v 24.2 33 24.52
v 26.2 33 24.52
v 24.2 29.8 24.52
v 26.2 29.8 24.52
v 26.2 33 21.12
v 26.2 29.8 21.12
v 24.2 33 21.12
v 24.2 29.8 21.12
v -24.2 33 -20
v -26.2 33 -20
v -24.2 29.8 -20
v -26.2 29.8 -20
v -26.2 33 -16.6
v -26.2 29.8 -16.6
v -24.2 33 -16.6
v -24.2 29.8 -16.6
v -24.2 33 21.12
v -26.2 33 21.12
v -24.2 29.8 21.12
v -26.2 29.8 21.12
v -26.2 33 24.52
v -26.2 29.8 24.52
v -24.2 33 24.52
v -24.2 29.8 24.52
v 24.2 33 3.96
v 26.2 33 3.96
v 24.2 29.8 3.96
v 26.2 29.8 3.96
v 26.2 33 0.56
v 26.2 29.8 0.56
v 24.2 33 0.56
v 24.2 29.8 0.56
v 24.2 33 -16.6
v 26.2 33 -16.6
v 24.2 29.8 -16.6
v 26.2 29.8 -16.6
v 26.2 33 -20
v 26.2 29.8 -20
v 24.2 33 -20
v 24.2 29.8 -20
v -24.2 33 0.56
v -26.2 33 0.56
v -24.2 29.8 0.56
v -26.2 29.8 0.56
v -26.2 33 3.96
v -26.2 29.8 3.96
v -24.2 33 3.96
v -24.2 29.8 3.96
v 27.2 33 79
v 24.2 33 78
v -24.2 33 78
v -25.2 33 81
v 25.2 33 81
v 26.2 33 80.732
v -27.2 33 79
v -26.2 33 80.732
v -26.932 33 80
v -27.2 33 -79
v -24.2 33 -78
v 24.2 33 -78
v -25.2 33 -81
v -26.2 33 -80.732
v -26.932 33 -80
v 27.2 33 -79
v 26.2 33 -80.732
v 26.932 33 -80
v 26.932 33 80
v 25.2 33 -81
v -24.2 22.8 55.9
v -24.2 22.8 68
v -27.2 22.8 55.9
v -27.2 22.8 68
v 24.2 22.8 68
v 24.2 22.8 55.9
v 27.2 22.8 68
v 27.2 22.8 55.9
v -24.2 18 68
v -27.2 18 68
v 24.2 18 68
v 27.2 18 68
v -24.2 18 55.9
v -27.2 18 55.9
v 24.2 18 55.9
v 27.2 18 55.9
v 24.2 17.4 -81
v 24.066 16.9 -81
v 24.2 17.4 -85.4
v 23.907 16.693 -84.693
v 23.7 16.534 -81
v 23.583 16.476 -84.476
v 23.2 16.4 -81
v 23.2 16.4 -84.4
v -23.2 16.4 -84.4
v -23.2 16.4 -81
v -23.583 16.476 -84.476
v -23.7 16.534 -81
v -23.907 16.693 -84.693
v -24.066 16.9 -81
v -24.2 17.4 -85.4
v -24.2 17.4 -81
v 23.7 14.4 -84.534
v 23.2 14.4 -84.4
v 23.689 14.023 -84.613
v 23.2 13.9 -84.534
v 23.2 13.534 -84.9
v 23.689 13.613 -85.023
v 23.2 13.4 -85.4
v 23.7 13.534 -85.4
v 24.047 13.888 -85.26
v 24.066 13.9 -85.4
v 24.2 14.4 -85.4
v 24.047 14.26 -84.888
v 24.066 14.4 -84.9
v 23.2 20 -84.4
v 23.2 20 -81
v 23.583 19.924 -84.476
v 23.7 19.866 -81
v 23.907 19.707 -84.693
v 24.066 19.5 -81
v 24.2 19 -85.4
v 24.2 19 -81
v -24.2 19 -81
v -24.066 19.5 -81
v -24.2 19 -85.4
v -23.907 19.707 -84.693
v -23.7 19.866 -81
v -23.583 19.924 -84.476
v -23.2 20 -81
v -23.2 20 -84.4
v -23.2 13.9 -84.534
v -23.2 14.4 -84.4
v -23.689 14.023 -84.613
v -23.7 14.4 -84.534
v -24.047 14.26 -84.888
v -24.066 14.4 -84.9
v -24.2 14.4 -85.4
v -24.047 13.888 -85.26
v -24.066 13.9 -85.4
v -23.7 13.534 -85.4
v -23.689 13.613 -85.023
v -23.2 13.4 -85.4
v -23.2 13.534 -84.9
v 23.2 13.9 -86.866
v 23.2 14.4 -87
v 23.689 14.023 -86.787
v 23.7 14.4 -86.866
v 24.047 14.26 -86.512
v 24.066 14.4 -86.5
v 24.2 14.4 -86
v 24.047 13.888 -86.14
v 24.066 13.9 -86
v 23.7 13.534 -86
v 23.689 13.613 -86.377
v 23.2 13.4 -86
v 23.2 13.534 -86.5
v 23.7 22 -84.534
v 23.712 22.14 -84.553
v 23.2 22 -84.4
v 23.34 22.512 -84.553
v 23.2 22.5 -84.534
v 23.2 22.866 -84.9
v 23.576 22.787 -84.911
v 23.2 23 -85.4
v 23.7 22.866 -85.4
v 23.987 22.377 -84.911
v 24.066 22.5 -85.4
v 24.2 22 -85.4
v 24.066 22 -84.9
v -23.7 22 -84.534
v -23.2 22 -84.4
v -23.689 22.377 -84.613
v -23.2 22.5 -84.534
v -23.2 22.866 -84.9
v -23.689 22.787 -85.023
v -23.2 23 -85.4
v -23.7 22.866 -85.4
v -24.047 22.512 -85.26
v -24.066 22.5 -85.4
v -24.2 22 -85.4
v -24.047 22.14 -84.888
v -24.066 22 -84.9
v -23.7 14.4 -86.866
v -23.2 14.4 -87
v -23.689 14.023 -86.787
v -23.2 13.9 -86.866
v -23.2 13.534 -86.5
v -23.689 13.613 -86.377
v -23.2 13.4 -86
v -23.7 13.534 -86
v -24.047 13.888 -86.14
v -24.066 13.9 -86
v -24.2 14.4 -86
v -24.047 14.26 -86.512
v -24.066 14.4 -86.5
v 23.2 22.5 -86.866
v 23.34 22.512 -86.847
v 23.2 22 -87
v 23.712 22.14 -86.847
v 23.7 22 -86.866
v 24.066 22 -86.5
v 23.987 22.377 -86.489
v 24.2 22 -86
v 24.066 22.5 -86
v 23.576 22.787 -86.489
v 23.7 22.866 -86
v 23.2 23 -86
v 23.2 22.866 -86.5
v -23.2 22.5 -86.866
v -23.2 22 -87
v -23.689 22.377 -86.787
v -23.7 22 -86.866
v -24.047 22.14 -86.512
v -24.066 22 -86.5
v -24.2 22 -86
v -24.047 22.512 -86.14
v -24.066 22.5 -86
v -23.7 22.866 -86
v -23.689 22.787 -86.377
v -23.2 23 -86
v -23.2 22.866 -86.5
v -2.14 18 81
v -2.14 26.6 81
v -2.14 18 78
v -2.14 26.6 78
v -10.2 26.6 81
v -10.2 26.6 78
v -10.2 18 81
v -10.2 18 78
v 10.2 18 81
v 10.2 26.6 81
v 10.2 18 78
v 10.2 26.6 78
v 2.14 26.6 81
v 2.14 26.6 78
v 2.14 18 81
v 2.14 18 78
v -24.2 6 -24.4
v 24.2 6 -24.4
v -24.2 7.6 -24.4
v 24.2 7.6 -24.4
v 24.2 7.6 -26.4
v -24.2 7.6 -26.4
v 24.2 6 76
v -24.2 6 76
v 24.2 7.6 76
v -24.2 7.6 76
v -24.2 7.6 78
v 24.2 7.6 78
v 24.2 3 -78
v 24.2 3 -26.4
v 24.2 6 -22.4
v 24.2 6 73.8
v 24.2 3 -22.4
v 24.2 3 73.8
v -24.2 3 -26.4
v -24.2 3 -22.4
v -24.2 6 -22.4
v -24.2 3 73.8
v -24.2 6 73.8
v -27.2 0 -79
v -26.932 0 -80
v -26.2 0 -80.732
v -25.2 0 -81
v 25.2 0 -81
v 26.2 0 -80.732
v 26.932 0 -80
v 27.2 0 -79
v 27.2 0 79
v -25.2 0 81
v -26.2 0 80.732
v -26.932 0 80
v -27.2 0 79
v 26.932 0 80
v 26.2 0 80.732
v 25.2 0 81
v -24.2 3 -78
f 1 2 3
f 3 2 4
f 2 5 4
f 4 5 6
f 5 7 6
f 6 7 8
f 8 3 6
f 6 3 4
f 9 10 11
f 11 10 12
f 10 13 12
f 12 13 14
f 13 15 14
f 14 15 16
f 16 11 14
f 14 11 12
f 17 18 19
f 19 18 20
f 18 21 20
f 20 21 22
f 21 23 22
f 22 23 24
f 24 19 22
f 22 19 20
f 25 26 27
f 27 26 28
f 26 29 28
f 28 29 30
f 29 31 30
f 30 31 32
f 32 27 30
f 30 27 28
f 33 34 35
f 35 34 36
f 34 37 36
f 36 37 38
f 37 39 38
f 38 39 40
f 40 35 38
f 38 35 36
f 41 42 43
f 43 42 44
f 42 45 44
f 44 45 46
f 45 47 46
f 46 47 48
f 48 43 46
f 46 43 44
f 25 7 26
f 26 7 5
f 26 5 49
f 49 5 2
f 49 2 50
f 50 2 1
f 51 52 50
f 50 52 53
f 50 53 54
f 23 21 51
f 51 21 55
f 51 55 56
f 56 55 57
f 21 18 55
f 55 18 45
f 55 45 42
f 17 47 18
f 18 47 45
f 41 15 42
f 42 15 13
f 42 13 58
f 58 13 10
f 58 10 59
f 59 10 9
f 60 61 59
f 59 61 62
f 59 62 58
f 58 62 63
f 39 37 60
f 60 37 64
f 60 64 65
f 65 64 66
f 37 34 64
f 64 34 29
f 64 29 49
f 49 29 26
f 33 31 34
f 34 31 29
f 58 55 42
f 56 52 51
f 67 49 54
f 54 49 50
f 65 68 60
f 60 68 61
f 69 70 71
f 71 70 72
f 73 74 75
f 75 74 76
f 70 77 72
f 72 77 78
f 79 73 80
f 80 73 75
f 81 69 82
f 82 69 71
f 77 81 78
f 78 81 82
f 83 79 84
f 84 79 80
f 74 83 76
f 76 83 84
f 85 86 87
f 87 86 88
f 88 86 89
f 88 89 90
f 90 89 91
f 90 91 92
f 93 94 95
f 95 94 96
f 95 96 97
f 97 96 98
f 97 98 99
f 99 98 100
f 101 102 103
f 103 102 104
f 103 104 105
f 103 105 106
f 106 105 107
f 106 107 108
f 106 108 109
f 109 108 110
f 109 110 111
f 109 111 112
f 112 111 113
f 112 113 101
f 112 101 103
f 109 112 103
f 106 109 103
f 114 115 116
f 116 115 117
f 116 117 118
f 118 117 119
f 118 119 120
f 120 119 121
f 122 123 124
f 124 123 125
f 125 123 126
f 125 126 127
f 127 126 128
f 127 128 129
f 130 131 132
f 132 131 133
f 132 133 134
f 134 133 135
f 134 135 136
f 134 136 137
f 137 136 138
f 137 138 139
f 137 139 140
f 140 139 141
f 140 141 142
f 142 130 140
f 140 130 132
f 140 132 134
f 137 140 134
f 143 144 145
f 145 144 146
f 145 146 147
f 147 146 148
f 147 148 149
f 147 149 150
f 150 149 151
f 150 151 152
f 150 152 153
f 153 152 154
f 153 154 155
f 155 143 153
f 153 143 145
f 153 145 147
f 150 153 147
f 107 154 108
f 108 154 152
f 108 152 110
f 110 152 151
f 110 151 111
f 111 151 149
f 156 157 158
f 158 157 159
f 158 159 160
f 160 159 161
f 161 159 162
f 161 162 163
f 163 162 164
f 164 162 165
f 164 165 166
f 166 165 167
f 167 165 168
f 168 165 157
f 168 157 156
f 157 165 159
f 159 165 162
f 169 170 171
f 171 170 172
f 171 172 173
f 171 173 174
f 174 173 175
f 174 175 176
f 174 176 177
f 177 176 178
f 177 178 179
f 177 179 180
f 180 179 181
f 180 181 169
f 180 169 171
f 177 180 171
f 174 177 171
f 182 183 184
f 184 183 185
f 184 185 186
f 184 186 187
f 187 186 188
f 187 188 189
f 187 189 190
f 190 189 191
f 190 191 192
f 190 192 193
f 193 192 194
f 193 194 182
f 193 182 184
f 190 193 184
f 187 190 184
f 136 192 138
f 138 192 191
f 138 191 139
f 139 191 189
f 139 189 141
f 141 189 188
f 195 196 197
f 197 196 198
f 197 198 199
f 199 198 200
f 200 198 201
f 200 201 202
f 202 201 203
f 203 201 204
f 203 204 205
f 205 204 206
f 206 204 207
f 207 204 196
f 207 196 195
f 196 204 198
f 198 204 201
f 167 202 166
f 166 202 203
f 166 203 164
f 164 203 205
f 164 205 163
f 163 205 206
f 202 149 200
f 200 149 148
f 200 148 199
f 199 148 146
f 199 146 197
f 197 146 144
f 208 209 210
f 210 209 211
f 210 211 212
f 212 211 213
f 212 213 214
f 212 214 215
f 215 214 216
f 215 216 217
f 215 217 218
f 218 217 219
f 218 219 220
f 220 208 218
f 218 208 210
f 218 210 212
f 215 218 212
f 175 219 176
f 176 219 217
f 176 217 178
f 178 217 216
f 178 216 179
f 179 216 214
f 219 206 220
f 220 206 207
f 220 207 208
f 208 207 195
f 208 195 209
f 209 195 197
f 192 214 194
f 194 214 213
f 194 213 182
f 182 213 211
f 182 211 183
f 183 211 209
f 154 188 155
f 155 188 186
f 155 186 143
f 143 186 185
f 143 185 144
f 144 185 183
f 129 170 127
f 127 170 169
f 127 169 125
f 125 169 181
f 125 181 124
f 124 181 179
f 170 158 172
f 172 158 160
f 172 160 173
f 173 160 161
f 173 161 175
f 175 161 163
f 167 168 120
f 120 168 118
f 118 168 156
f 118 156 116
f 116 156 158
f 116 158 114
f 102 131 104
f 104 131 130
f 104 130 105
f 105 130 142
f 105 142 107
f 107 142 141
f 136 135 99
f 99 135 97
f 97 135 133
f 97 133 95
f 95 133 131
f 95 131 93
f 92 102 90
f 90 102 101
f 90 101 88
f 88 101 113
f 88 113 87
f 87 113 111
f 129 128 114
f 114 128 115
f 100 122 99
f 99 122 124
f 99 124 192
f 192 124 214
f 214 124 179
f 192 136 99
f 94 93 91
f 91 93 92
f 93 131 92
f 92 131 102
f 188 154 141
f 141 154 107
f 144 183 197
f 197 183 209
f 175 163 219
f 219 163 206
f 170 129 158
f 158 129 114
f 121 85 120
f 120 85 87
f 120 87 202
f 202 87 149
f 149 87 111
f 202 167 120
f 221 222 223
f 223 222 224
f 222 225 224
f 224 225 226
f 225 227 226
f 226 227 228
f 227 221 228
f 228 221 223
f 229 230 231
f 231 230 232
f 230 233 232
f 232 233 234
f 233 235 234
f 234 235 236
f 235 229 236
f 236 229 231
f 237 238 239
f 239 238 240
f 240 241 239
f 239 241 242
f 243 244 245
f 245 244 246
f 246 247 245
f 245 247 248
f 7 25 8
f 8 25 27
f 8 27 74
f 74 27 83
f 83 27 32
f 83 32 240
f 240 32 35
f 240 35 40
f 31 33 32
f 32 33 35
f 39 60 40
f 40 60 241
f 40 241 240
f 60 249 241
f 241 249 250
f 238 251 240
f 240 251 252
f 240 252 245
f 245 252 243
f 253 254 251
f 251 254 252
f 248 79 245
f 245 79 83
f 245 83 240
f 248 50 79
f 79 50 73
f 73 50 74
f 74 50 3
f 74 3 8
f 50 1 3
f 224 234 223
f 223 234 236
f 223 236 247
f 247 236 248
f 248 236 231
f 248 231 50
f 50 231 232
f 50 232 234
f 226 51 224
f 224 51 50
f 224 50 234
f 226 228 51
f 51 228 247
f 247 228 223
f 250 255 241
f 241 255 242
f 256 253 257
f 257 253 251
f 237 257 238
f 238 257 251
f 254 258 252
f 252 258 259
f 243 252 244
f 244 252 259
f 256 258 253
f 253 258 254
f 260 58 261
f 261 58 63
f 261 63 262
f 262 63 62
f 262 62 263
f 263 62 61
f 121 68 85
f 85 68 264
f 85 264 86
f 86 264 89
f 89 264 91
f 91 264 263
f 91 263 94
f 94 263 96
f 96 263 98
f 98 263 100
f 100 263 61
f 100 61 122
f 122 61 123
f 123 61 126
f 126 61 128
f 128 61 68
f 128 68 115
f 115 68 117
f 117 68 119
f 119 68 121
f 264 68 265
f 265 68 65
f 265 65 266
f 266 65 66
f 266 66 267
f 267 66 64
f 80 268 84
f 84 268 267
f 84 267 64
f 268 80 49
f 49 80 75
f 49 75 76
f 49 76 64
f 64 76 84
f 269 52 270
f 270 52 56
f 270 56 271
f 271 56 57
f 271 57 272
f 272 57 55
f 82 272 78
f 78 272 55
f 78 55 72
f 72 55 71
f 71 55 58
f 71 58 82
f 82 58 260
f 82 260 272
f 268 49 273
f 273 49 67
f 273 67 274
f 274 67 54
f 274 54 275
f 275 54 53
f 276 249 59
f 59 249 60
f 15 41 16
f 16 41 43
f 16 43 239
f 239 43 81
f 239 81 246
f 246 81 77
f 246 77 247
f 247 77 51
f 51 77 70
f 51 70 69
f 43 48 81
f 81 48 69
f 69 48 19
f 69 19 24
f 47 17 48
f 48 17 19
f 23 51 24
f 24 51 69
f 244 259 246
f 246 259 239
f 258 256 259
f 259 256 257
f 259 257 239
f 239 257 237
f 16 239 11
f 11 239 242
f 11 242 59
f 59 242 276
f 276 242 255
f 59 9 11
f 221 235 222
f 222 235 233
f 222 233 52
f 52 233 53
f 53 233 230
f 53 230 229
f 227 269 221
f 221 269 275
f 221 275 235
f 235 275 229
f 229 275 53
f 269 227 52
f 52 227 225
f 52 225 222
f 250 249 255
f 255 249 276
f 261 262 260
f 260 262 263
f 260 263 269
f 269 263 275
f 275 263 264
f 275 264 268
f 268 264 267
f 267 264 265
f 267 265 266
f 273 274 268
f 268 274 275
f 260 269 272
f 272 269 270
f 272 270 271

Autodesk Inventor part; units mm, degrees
ref_plane "YZ Plane" through (0, 0, 0) normal (1, 0, 0) x (0, 1, 0)
ref_plane "XZ Plane" through (0, 0, 0) normal (0, 1, 0) x (-1, 0, 0)
ref_plane "XY Plane" through (0, 0, 0) normal (0, 0, 1) x (1, 0, 0)
sketch "Sketch2" plane through (0, 0, 0) normal (0, 1, 0) x (-1, 0, 0)
  line L0 (-30.2, -84) -> (30.2, -84)
  line L1 (30.2, -84) -> (30.2, 84)
  line L2 (30.2, 84) -> (-30.2, 84)
  line L3 (-30.2, 84) -> (-30.2, -84)
  line L4 (-30.2, -84) -> (30.2, 84) construction
  line L5 (30.2, -84) -> (-30.2, 84) construction
  point P0 (0, 0)
  dimension "d0" = 60.4
  dimension "d1" = 168
extrude "Extrusion1" add sketch "Sketch2" along normal blind 3
sketch "Sketch3" plane through (0, 3, 0) normal (0, 1, 0) x (1, 0, 0)
  line L0 (27.2, 81) -> (-27.2, 81)
  line L1 (-27.2, 81) -> (-27.2, -81)
  line L2 (-27.2, -81) -> (27.2, -81)
  line L3 (27.2, -81) -> (27.2, 81)
  line L4 (27.2, 81) -> (-27.2, -81) construction
  line L5 (-27.2, 81) -> (27.2, -81) construction
  line L6 (-30.2, 84) -> (-30.2, -84) projected
  line L7 (-30.2, -84) -> (30.2, -84) projected
  line L8 (24.2, 78) -> (-24.2, 78)
  line L9 (-24.2, 78) -> (-24.2, -78)
  line L10 (-24.2, -78) -> (24.2, -78)
  line L11 (24.2, -78) -> (24.2, 78)
  line L12 (24.2, 78) -> (-24.2, -78) construction
  line L13 (-24.2, 78) -> (24.2, -78) construction
  point P0 (0, 0)
  dimension "d4" = 3
  dimension "d5" = 3
  dimension "d6" = 3
  dimension "d7" = 3
extrude "Extrusion2" add sketch "Sketch3" along normal blind 30
fillet "Fillet1" radius 2 8 edges at (27.2, 18, 81) (-27.2, 18, 81) (-30.2, 1.5, 84) (30.2, 1.5, 84) (27.2, 18, -81) (-27.2, 18, -81) (30.2, 1.5, -84) (-30.2, 1.5, -84)
sketch "Sketch10" plane through (0, 3, 0) normal (0, 1, 0) x (1, 0, 0)
  line L0 (24.2, 78) -> (-24.2, 78) projected
  line L1 (-24.2, 78) -> (-24.2, -78) projected
  line L2 (-24.2, -78) -> (24.2, -78) projected
  line L3 (24.2, -78) -> (24.2, 78) projected
  line L4 (-24.2, -78) -> (24.2, -78)
  line L5 (24.2, -78) -> (24.2, -73.8)
  line L6 (24.2, -73.8) -> (-24.2, -73.8)
  line L7 (-24.2, -73.8) -> (-24.2, -78)
  line L8 (-24.2, -73.8) -> (24.2, -73.8)
  line L9 (24.2, -73.8) -> (24.2, 22.4)
  line L10 (24.2, 22.4) -> (-24.2, 22.4)
  line L11 (-24.2, 22.4) -> (-24.2, -73.8)
  line L12 (-24.2, 22.4) -> (24.2, 22.4)
  line L13 (24.2, 22.4) -> (24.2, 26.4)
  line L14 (24.2, 26.4) -> (-24.2, 26.4)
  line L15 (-24.2, 26.4) -> (-24.2, 22.4)
  point P0 (0, 0)
  point P1 (-24.2, 26.4)
  point P2 (-24.2, 22.4)
  dimension "d90" = 4.2
  dimension "d91" = 96.2
  dimension "d92" = 4
extrude "Extrusion9" add sketch "Sketch10" along normal blind 3 contours L3 L10 L1 L14 | L3 L2 L1 L6
sketch "Sketch11" plane through (0, 6, 0) normal (0, 1, 0) x (1, 0, 0)
  line L0 (-24.2, 22.4) -> (-24.2, 26.4) projected
  line L1 (-24.2, 22.4) -> (24.2, 22.4) projected
  line L2 (24.2, 26.4) -> (24.2, 22.4) projected
  line L3 (24.2, 26.4) -> (-24.2, 26.4) projected
  line L4 (-24.2, -78) -> (-24.2, -73.8) projected
  line L5 (24.2, -78) -> (-24.2, -78) projected
  line L6 (24.2, -73.8) -> (24.2, -78) projected
  line L7 (24.2, -73.8) -> (-24.2, -73.8) projected
  line L8 (24.2, 26.4) -> (-24.2, 26.4) projected
  line L9 (-24.2, 26.4) -> (24.2, 26.4)
  line L10 (24.2, 26.4) -> (24.2, 24.4)
  line L11 (24.2, 24.4) -> (-24.2, 24.4)
  line L12 (-24.2, 24.4) -> (-24.2, 26.4)
  line L13 (24.2, -73.8) -> (24.2, -78) projected
  line L14 (-24.2, -78) -> (24.2, -78)
  line L15 (24.2, -78) -> (24.2, -76)
  line L16 (24.2, -76) -> (-24.2, -76)
  line L17 (-24.2, -76) -> (-24.2, -78)
  point P0 (0, 0)
  point P1 (24.2, -72.6)
  point P2 (-24.2, -76)
  dimension "d95" = 2
  dimension "d120" = 2
extrude "Extrusion10" add sketch "Sketch11" along normal blind 1.6 contours L0 L3 L2 L11 | L4 L16 L6 L5
sketch "Sketch12" plane through (-25.2, 3, 81) normal (0, 0, 1) x (1, 0, 0)
  line L0 (-2, 30) -> (-2, 0) projected
  line L1 (0, 30) -> (50.4, 30) projected
  line L2 (-2, 30) -> (0, 30) projected
  line L3 (50.4, 30) -> (52.4, 30) projected
  line L4 (52.4, 0) -> (52.4, 30) projected
  line L5 (50.4, 0) -> (0, 0) projected
  line L6 (0, 0) -> (-2, 0) projected
  line L7 (52.4, 0) -> (50.4, 0) projected
  line L8 (15, 23.6) -> (23.06, 23.6)
  line L9 (23.06, 23.6) -> (23.06, 15)
  line L10 (23.06, 15) -> (15, 15)
  line L11 (15, 15) -> (15, 23.6)
  line L12 (27.34, 23.6) -> (35.4, 23.6)
  line L13 (35.4, 23.6) -> (35.4, 15)
  line L14 (35.4, 15) -> (27.34, 15)
  line L15 (27.34, 15) -> (27.34, 23.6)
  point P0 (25.2, -3)
  dimension "d116" = 8.06
  dimension "d117" = 8.6
  dimension "d118" = 15
  dimension "d119" = 17
  dimension "d121" = 8.06
  dimension "d122" = 8.6
  dimension "d123" = 15
  dimension "d124" = 17
extrude "Extrusion11" cut sketch "Sketch12" against normal blind 3 contours L8 L9 L10 L11 | L12 L13 L14 L15
sketch "Sketch13" plane through (0, 3, 0) normal (0, 1, 0) x (1, 0, 0)
  arc A0 (-28.2, 84) -> (-30.2, 82) centre (-28.2, 82) ccw projected
  line L0 (-30.2, 82) -> (-30.2, -82) projected
  arc A1 (-30.2, -82) -> (-28.2, -84) centre (-28.2, -82) ccw projected
  line L1 (-28.2, -84) -> (28.2, -84) projected
  arc A2 (28.2, -84) -> (30.2, -82) centre (28.2, -82) ccw projected
  line L2 (30.2, -82) -> (30.2, 82) projected
  arc A3 (30.2, 82) -> (28.2, 84) centre (28.2, 82) ccw projected
  line L3 (28.2, 84) -> (-28.2, 84) projected
  line L4 (-25.2, 81) -> (25.2, 81) projected
  arc A4 (27.2, 79) -> (25.2, 81) centre (25.2, 79) ccw projected
  line L5 (27.2, 79) -> (27.2, -79) projected
  arc A5 (25.2, -81) -> (27.2, -79) centre (25.2, -79) ccw projected
  line L6 (25.2, -81) -> (-25.2, -81) projected
  arc A6 (-27.2, -79) -> (-25.2, -81) centre (-25.2, -79) ccw projected
  line L7 (-27.2, -79) -> (-27.2, 79) projected
  arc A7 (-25.2, 81) -> (-27.2, 79) centre (-25.2, 79) ccw projected
  point P0 (0, 0)
extrude "Extrusion12" cut sketch "Sketch13" against normal blind 3
sketch "Sketch14" plane through (25.2, 33, -81) normal (0, 0, -1) x (-1, 0, 0)
  line L0 (1, -10) -> (49.4, -10)
  line L1 (49.4, -10) -> (49.4, -19.6)
  line L2 (49.4, -19.6) -> (1, -19.6)
  line L3 (1, -19.6) -> (1, -10)
  line L4 (52.4, -33) -> (52.4, 0) projected
  line L5 (-2, 0) -> (-2, -33) projected
  line L6 (50.4, 0) -> (50.4, -33) projected
  line L7 (50.4, -33) -> (0, -33) projected
  point P0 (25.2, -33)
  point P1 (50.4, -16.5)
  point P2 (49.4, -14.8)
  dimension "d127" = 9.6
  dimension "d128" = 3
  dimension "d129" = 3
  dimension "d140" = 23
extrude "Extrusion13" add sketch "Sketch14" along normal blind 6
sketch "Sketch15" plane through (-24.2, 13.4, -81) normal (-1, 0, 0) x (0, 0, 1)
  line L0 (0, 9.6) -> (-6, 9.6) projected
  line L1 (0, 9.6) -> (-3.4, 9.6)
  line L2 (-3.4, 9.6) -> (-3.4, 6.6)
  line L3 (-3.4, 6.6) -> (0, 6.6)
  line L4 (0, 6.6) -> (0, 9.6)
  line L5 (0, 9.6) -> (0, 0) projected
  line L6 (0, 9.6) -> (-6, 9.6) projected
  line L7 (-6, 0) -> (-6, 9.6) projected
  line L8 (0, 0) -> (-6, 0) projected
  line L9 (0, 0) -> (-3.4, 0)
  line L10 (-3.4, 0) -> (-3.4, 3)
  line L11 (-3.4, 3) -> (0, 3)
  line L12 (0, 3) -> (0, 0)
  point P0 (81, -13.4)
  point P1 (-3.4, 0)
  dimension "d133" = 3.4
  dimension "d134" = 3
  dimension "d135" = 3.4
  dimension "d136" = 3
extrude "Extrusion14" cut sketch "Sketch15" against normal up to surface (48.4 mm away) contours L4 L3 L2 L0 | L5 L8 L10 L11
fillet "Fillet8" radius 1 18 edges at (0, 23, -87) (0, 23, -84.4) (0, 13.4, -87) (0, 13.4, -84.4) (-24.2, 14.9, -84.4) (-24.2, 18.2, -87) (-24.2, 21.5, -84.4) (-24.2, 23, -85.7) (-24.2, 13.4, -85.7) (-24.2, 16.4, -82.7) (-24.2, 20, -82.7) (24.2, 20, -82.7) (24.2, 16.4, -82.7) (24.2, 14.9, -84.4) (24.2, 21.5, -84.4) (24.2, 23, -85.7) (24.2, 18.2, -87) (24.2, 13.4, -85.7)
sketch "Sketch16" plane through (-27.2, 0, -79) normal (-1, 0, 0) x (0, 0, 1)
  line L0 (147, 22.8) -> (134.9, 22.8)
  line L1 (134.9, 22.8) -> (134.9, 18)
  line L2 (134.9, 18) -> (147, 18)
  line L3 (147, 18) -> (147, 22.8)
  line L4 (160, 3) -> (160, 33) projected
  line L5 (152, 0) -> (0, 0) projected
  point P0 (79, 0)
  point P1 (154, 0)
  dimension "d141" = 12.1
  dimension "d142" = 4.8
  dimension "d143" = 13
  dimension "d144" = 18
extrude "Extrusion15" cut sketch "Sketch16" against normal through all
sketch "Sketch17" plane through (0, 33, 0) normal (0, 1, 0) x (1, 0, 0)
  arc A0 (-25.2, 81) -> (-27.2, 79) centre (-25.2, 79) ccw projected
  line L0 (-27.2, 79) -> (-27.2, -79) projected
  arc A1 (-27.2, -79) -> (-25.2, -81) centre (-25.2, -79) ccw projected
  line L1 (-25.2, -81) -> (25.2, -81) projected
  arc A2 (25.2, -81) -> (27.2, -79) centre (25.2, -79) ccw projected
  line L2 (27.2, -79) -> (27.2, 79) projected
  arc A3 (27.2, 79) -> (25.2, 81) centre (25.2, 79) ccw projected
  line L3 (25.2, 81) -> (-25.2, 81) projected
  line L4 (24.2, 78) -> (24.2, -78) projected
  line L5 (24.2, -78) -> (-24.2, -78) projected
  line L6 (-24.2, -78) -> (-24.2, 78) projected
  line L7 (-24.2, 78) -> (24.2, 78) projected
  line L8 (-26.2, 20) -> (-24.2, 20)
  line L9 (-24.2, 20) -> (-24.2, 16.6)
  line L10 (-24.2, 16.6) -> (-26.2, 16.6)
  line L11 (-26.2, 16.6) -> (-26.2, 20)
  line L12 (-24.2, -0.56) -> (-26.2, -0.56)
  line L13 (-26.2, -0.56) -> (-26.2, -3.96)
  line L14 (-26.2, -3.96) -> (-24.2, -3.96)
  line L15 (-24.2, -3.96) -> (-24.2, -0.56)
  line L16 (-24.2, 22.4) -> (-24.2, -73.8) projected
  line L17 (-24.2, -21.12) -> (-26.2, -21.12)
  line L18 (-26.2, -21.12) -> (-26.2, -24.52)
  line L19 (-26.2, -24.52) -> (-24.2, -24.52)
  line L20 (-24.2, -24.52) -> (-24.2, -21.12)
  line L21 (24.2, 20) -> (26.2, 20)
  line L22 (26.2, 20) -> (26.2, 16.6)
  line L23 (26.2, 16.6) -> (24.2, 16.6)
  line L24 (24.2, 16.6) -> (24.2, 20)
  line L25 (24.2, -0.56) -> (26.2, -0.56)
  line L26 (26.2, -0.56) -> (26.2, -3.96)
  line L27 (26.2, -3.96) -> (24.2, -3.96)
  line L28 (24.2, -3.96) -> (24.2, -0.56)
  line L29 (24.2, -21.12) -> (26.2, -21.12)
  line L30 (26.2, -21.12) -> (26.2, -24.52)
  line L31 (26.2, -24.52) -> (24.2, -24.52)
  line L32 (24.2, -24.52) -> (24.2, -21.12)
  point P0 (0, 0)
  point P1 (-24.2, 16.6)
  point P2 (24.2, 16.6)
  point P3 (24.2, -3.96)
  point P4 (24.2, -24.52)
  point P5 (-24.2, -24.52)
  point P6 (-24.2, -21.12)
  point P7 (-24.2, -3.96)
  dimension "d147" = 2
  dimension "d148" = 3.4
  dimension "d149" = 61
  dimension "d150" = 0
  dimension "d153" = 2
  dimension "d154" = 3.4
  dimension "d155" = 20.56
  dimension "d156" = 2
  dimension "d157" = 3.4
  dimension "d158" = 20.56
  dimension "d159" = 2
  dimension "d160" = 3.4
  dimension "d161" = 2
  dimension "d162" = 3.4
  dimension "d163" = 2
  dimension "d164" = 3.4
  dimension "d165" = 20.56
  dimension "d166" = 20.56
  dimension "d167" = 61
extrude "Extrusion16" cut sketch "Sketch17" against normal blind 3.2 contours L21 L22 L23 L4 | L25 L26 L27 L4 | L6 L10 L11 L8 | L29 L30 L31 L4 | L6 L14 L13 L12 | L6 L19 L18 L17
equation "\"d167\" = d149"
properties part number "module_switch" material "PC/ABS Plastic"
